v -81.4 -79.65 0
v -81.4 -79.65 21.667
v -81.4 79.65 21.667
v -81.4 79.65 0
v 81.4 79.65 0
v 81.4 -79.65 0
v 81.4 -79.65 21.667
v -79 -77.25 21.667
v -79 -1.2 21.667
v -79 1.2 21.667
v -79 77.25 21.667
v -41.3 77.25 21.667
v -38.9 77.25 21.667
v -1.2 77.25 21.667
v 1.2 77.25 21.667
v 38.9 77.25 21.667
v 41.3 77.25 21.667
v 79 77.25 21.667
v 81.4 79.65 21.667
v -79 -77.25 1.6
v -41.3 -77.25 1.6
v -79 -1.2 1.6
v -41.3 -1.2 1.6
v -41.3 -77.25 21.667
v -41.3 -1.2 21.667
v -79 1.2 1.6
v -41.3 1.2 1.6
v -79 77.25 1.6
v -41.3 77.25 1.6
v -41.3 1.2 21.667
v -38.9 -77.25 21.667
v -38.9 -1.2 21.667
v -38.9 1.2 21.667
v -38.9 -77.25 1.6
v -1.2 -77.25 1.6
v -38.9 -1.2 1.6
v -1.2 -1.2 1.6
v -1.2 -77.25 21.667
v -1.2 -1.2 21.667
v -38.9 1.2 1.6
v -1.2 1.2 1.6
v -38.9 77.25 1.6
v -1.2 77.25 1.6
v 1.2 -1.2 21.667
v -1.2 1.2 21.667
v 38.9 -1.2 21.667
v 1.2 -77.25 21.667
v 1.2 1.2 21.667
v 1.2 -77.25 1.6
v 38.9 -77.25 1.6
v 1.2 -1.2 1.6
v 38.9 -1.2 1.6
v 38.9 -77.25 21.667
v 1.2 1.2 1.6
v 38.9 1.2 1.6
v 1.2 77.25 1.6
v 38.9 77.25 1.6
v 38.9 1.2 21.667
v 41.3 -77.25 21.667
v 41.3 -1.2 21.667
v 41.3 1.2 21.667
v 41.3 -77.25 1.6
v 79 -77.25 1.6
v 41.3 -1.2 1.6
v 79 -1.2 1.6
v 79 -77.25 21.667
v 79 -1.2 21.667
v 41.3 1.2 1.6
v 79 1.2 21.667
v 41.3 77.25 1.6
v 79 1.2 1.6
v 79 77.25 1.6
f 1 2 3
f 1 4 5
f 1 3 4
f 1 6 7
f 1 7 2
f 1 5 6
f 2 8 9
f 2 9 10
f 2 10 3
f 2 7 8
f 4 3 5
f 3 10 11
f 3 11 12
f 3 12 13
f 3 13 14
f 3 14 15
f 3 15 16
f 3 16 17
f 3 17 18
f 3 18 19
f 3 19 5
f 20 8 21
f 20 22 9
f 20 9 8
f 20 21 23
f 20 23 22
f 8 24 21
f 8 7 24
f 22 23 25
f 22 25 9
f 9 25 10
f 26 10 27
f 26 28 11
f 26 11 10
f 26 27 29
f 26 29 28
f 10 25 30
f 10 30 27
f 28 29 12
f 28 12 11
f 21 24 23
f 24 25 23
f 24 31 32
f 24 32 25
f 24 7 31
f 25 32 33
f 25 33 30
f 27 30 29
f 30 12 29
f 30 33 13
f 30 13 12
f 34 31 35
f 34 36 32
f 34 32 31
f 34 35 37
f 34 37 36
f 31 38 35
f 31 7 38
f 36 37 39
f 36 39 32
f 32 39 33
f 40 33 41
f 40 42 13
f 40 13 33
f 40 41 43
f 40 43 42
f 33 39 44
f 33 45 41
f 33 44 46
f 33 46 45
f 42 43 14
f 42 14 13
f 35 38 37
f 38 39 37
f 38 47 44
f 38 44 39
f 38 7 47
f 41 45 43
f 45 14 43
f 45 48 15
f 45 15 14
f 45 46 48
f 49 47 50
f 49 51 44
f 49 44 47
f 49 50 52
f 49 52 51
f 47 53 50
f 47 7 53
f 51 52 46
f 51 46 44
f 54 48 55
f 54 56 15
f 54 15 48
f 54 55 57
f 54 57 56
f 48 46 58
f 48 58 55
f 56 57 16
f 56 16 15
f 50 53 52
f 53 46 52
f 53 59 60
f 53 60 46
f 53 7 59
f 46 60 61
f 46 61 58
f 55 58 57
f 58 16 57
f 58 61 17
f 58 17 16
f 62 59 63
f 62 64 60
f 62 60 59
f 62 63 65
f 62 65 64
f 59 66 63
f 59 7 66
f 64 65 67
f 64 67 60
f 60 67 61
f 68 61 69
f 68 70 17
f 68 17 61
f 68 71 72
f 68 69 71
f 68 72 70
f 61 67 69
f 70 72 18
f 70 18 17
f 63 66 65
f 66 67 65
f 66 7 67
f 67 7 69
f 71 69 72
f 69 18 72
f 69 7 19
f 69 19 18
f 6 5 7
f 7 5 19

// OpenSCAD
// Start: lazy_union
default_5_default_5();
// End: lazy_union

// Modules.

// 'PartMaterial undef-default - default 5.0'
module default_5_default_5() {
  // 'None : _combine_solids_and_holes'
  union() {
    // '_combine_solids_and_holes'
    difference() {
      // 'medium_holes : _combine_solids_and_holes'
      union() {
        // 'box'
        multmatrix(m=[[1.0, 0.0, 0.0, -81.4], [0.0, 1.0, 0.0, -79.65], [0.0, 0.0, 1.0, 0.0], [0.0, 0.0, 0.0, 1.0]]) {
          // 'box : _combine_solids_and_holes'
          union() {
            // 'box'
            cube(size=[162.8, 159.3, 21.666666666666668]);
          }
        }
      }
      // 'medium_holes'
      multmatrix(m=[[1.0, 0.0, 0.0, -79.0], [0.0, 1.0, 0.0, 1.2000000000000028], [0.0, 0.0, 1.0, 1.6], [0.0, 0.0, 0.0, 1.0]]) {
        // "('hole', 0, 0) : _combine_solids_and_holes"
        union() {
          // ('hole', 0, 0)
          cube(size=[37.7, 76.05, 20.076666666666668]);
        }
      }
      // 'medium_holes'
      multmatrix(m=[[1.0, 0.0, 0.0, -79.0], [0.0, 1.0, 0.0, -77.25], [0.0, 0.0, 1.0, 1.6], [0.0, 0.0, 0.0, 1.0]]) {
        // "('hole', 0, 1) : _combine_solids_and_holes"
        union() {
          // ('hole', 0, 1)
          cube(size=[37.7, 76.05, 20.076666666666668]);
        }
      }
      // 'medium_holes'
      multmatrix(m=[[1.0, 0.0, 0.0, -38.900000000000006], [0.0, 1.0, 0.0, 1.2000000000000028], [0.0, 0.0, 1.0, 1.6], [0.0, 0.0, 0.0, 1.0]]) {
        // "('hole', 1, 0) : _combine_solids_and_holes"
        union() {
          // ('hole', 1, 0)
          cube(size=[37.7, 76.05, 20.076666666666668]);
        }
      }
      // 'medium_holes'
      multmatrix(m=[[1.0, 0.0, 0.0, -38.900000000000006], [0.0, 1.0, 0.0, -77.25], [0.0, 0.0, 1.0, 1.6], [0.0, 0.0, 0.0, 1.0]]) {
        // "('hole', 1, 1) : _combine_solids_and_holes"
        union() {
          // ('hole', 1, 1)
          cube(size=[37.7, 76.05, 20.076666666666668]);
        }
      }
      // 'medium_holes'
      multmatrix(m=[[1.0, 0.0, 0.0, 1.2000000000000028], [0.0, 1.0, 0.0, 1.2000000000000028], [0.0, 0.0, 1.0, 1.6], [0.0, 0.0, 0.0, 1.0]]) {
        // "('hole', 2, 0) : _combine_solids_and_holes"
        union() {
          // ('hole', 2, 0)
          cube(size=[37.7, 76.05, 20.076666666666668]);
        }
      }
      // 'medium_holes'
      multmatrix(m=[[1.0, 0.0, 0.0, 1.2000000000000028], [0.0, 1.0, 0.0, -77.25], [0.0, 0.0, 1.0, 1.6], [0.0, 0.0, 0.0, 1.0]]) {
        // "('hole', 2, 1) : _combine_solids_and_holes"
        union() {
          // ('hole', 2, 1)
          cube(size=[37.7, 76.05, 20.076666666666668]);
        }
      }
      // 'medium_holes'
      multmatrix(m=[[1.0, 0.0, 0.0, 41.30000000000001], [0.0, 1.0, 0.0, 1.2000000000000028], [0.0, 0.0, 1.0, 1.6], [0.0, 0.0, 0.0, 1.0]]) {
        // "('hole', 3, 0) : _combine_solids_and_holes"
        union() {
          // ('hole', 3, 0)
          cube(size=[37.7, 76.05, 20.076666666666668]);
        }
      }
      // 'medium_holes'
      multmatrix(m=[[1.0, 0.0, 0.0, 41.30000000000001], [0.0, 1.0, 0.0, -77.25], [0.0, 0.0, 1.0, 1.6], [0.0, 0.0, 0.0, 1.0]]) {
        // "('hole', 3, 1) : _combine_solids_and_holes"
        union() {
          // ('hole', 3, 1)
          cube(size=[37.7, 76.05, 20.076666666666668]);
        }
      }
    }
  }
} // end module default_5_default_5
